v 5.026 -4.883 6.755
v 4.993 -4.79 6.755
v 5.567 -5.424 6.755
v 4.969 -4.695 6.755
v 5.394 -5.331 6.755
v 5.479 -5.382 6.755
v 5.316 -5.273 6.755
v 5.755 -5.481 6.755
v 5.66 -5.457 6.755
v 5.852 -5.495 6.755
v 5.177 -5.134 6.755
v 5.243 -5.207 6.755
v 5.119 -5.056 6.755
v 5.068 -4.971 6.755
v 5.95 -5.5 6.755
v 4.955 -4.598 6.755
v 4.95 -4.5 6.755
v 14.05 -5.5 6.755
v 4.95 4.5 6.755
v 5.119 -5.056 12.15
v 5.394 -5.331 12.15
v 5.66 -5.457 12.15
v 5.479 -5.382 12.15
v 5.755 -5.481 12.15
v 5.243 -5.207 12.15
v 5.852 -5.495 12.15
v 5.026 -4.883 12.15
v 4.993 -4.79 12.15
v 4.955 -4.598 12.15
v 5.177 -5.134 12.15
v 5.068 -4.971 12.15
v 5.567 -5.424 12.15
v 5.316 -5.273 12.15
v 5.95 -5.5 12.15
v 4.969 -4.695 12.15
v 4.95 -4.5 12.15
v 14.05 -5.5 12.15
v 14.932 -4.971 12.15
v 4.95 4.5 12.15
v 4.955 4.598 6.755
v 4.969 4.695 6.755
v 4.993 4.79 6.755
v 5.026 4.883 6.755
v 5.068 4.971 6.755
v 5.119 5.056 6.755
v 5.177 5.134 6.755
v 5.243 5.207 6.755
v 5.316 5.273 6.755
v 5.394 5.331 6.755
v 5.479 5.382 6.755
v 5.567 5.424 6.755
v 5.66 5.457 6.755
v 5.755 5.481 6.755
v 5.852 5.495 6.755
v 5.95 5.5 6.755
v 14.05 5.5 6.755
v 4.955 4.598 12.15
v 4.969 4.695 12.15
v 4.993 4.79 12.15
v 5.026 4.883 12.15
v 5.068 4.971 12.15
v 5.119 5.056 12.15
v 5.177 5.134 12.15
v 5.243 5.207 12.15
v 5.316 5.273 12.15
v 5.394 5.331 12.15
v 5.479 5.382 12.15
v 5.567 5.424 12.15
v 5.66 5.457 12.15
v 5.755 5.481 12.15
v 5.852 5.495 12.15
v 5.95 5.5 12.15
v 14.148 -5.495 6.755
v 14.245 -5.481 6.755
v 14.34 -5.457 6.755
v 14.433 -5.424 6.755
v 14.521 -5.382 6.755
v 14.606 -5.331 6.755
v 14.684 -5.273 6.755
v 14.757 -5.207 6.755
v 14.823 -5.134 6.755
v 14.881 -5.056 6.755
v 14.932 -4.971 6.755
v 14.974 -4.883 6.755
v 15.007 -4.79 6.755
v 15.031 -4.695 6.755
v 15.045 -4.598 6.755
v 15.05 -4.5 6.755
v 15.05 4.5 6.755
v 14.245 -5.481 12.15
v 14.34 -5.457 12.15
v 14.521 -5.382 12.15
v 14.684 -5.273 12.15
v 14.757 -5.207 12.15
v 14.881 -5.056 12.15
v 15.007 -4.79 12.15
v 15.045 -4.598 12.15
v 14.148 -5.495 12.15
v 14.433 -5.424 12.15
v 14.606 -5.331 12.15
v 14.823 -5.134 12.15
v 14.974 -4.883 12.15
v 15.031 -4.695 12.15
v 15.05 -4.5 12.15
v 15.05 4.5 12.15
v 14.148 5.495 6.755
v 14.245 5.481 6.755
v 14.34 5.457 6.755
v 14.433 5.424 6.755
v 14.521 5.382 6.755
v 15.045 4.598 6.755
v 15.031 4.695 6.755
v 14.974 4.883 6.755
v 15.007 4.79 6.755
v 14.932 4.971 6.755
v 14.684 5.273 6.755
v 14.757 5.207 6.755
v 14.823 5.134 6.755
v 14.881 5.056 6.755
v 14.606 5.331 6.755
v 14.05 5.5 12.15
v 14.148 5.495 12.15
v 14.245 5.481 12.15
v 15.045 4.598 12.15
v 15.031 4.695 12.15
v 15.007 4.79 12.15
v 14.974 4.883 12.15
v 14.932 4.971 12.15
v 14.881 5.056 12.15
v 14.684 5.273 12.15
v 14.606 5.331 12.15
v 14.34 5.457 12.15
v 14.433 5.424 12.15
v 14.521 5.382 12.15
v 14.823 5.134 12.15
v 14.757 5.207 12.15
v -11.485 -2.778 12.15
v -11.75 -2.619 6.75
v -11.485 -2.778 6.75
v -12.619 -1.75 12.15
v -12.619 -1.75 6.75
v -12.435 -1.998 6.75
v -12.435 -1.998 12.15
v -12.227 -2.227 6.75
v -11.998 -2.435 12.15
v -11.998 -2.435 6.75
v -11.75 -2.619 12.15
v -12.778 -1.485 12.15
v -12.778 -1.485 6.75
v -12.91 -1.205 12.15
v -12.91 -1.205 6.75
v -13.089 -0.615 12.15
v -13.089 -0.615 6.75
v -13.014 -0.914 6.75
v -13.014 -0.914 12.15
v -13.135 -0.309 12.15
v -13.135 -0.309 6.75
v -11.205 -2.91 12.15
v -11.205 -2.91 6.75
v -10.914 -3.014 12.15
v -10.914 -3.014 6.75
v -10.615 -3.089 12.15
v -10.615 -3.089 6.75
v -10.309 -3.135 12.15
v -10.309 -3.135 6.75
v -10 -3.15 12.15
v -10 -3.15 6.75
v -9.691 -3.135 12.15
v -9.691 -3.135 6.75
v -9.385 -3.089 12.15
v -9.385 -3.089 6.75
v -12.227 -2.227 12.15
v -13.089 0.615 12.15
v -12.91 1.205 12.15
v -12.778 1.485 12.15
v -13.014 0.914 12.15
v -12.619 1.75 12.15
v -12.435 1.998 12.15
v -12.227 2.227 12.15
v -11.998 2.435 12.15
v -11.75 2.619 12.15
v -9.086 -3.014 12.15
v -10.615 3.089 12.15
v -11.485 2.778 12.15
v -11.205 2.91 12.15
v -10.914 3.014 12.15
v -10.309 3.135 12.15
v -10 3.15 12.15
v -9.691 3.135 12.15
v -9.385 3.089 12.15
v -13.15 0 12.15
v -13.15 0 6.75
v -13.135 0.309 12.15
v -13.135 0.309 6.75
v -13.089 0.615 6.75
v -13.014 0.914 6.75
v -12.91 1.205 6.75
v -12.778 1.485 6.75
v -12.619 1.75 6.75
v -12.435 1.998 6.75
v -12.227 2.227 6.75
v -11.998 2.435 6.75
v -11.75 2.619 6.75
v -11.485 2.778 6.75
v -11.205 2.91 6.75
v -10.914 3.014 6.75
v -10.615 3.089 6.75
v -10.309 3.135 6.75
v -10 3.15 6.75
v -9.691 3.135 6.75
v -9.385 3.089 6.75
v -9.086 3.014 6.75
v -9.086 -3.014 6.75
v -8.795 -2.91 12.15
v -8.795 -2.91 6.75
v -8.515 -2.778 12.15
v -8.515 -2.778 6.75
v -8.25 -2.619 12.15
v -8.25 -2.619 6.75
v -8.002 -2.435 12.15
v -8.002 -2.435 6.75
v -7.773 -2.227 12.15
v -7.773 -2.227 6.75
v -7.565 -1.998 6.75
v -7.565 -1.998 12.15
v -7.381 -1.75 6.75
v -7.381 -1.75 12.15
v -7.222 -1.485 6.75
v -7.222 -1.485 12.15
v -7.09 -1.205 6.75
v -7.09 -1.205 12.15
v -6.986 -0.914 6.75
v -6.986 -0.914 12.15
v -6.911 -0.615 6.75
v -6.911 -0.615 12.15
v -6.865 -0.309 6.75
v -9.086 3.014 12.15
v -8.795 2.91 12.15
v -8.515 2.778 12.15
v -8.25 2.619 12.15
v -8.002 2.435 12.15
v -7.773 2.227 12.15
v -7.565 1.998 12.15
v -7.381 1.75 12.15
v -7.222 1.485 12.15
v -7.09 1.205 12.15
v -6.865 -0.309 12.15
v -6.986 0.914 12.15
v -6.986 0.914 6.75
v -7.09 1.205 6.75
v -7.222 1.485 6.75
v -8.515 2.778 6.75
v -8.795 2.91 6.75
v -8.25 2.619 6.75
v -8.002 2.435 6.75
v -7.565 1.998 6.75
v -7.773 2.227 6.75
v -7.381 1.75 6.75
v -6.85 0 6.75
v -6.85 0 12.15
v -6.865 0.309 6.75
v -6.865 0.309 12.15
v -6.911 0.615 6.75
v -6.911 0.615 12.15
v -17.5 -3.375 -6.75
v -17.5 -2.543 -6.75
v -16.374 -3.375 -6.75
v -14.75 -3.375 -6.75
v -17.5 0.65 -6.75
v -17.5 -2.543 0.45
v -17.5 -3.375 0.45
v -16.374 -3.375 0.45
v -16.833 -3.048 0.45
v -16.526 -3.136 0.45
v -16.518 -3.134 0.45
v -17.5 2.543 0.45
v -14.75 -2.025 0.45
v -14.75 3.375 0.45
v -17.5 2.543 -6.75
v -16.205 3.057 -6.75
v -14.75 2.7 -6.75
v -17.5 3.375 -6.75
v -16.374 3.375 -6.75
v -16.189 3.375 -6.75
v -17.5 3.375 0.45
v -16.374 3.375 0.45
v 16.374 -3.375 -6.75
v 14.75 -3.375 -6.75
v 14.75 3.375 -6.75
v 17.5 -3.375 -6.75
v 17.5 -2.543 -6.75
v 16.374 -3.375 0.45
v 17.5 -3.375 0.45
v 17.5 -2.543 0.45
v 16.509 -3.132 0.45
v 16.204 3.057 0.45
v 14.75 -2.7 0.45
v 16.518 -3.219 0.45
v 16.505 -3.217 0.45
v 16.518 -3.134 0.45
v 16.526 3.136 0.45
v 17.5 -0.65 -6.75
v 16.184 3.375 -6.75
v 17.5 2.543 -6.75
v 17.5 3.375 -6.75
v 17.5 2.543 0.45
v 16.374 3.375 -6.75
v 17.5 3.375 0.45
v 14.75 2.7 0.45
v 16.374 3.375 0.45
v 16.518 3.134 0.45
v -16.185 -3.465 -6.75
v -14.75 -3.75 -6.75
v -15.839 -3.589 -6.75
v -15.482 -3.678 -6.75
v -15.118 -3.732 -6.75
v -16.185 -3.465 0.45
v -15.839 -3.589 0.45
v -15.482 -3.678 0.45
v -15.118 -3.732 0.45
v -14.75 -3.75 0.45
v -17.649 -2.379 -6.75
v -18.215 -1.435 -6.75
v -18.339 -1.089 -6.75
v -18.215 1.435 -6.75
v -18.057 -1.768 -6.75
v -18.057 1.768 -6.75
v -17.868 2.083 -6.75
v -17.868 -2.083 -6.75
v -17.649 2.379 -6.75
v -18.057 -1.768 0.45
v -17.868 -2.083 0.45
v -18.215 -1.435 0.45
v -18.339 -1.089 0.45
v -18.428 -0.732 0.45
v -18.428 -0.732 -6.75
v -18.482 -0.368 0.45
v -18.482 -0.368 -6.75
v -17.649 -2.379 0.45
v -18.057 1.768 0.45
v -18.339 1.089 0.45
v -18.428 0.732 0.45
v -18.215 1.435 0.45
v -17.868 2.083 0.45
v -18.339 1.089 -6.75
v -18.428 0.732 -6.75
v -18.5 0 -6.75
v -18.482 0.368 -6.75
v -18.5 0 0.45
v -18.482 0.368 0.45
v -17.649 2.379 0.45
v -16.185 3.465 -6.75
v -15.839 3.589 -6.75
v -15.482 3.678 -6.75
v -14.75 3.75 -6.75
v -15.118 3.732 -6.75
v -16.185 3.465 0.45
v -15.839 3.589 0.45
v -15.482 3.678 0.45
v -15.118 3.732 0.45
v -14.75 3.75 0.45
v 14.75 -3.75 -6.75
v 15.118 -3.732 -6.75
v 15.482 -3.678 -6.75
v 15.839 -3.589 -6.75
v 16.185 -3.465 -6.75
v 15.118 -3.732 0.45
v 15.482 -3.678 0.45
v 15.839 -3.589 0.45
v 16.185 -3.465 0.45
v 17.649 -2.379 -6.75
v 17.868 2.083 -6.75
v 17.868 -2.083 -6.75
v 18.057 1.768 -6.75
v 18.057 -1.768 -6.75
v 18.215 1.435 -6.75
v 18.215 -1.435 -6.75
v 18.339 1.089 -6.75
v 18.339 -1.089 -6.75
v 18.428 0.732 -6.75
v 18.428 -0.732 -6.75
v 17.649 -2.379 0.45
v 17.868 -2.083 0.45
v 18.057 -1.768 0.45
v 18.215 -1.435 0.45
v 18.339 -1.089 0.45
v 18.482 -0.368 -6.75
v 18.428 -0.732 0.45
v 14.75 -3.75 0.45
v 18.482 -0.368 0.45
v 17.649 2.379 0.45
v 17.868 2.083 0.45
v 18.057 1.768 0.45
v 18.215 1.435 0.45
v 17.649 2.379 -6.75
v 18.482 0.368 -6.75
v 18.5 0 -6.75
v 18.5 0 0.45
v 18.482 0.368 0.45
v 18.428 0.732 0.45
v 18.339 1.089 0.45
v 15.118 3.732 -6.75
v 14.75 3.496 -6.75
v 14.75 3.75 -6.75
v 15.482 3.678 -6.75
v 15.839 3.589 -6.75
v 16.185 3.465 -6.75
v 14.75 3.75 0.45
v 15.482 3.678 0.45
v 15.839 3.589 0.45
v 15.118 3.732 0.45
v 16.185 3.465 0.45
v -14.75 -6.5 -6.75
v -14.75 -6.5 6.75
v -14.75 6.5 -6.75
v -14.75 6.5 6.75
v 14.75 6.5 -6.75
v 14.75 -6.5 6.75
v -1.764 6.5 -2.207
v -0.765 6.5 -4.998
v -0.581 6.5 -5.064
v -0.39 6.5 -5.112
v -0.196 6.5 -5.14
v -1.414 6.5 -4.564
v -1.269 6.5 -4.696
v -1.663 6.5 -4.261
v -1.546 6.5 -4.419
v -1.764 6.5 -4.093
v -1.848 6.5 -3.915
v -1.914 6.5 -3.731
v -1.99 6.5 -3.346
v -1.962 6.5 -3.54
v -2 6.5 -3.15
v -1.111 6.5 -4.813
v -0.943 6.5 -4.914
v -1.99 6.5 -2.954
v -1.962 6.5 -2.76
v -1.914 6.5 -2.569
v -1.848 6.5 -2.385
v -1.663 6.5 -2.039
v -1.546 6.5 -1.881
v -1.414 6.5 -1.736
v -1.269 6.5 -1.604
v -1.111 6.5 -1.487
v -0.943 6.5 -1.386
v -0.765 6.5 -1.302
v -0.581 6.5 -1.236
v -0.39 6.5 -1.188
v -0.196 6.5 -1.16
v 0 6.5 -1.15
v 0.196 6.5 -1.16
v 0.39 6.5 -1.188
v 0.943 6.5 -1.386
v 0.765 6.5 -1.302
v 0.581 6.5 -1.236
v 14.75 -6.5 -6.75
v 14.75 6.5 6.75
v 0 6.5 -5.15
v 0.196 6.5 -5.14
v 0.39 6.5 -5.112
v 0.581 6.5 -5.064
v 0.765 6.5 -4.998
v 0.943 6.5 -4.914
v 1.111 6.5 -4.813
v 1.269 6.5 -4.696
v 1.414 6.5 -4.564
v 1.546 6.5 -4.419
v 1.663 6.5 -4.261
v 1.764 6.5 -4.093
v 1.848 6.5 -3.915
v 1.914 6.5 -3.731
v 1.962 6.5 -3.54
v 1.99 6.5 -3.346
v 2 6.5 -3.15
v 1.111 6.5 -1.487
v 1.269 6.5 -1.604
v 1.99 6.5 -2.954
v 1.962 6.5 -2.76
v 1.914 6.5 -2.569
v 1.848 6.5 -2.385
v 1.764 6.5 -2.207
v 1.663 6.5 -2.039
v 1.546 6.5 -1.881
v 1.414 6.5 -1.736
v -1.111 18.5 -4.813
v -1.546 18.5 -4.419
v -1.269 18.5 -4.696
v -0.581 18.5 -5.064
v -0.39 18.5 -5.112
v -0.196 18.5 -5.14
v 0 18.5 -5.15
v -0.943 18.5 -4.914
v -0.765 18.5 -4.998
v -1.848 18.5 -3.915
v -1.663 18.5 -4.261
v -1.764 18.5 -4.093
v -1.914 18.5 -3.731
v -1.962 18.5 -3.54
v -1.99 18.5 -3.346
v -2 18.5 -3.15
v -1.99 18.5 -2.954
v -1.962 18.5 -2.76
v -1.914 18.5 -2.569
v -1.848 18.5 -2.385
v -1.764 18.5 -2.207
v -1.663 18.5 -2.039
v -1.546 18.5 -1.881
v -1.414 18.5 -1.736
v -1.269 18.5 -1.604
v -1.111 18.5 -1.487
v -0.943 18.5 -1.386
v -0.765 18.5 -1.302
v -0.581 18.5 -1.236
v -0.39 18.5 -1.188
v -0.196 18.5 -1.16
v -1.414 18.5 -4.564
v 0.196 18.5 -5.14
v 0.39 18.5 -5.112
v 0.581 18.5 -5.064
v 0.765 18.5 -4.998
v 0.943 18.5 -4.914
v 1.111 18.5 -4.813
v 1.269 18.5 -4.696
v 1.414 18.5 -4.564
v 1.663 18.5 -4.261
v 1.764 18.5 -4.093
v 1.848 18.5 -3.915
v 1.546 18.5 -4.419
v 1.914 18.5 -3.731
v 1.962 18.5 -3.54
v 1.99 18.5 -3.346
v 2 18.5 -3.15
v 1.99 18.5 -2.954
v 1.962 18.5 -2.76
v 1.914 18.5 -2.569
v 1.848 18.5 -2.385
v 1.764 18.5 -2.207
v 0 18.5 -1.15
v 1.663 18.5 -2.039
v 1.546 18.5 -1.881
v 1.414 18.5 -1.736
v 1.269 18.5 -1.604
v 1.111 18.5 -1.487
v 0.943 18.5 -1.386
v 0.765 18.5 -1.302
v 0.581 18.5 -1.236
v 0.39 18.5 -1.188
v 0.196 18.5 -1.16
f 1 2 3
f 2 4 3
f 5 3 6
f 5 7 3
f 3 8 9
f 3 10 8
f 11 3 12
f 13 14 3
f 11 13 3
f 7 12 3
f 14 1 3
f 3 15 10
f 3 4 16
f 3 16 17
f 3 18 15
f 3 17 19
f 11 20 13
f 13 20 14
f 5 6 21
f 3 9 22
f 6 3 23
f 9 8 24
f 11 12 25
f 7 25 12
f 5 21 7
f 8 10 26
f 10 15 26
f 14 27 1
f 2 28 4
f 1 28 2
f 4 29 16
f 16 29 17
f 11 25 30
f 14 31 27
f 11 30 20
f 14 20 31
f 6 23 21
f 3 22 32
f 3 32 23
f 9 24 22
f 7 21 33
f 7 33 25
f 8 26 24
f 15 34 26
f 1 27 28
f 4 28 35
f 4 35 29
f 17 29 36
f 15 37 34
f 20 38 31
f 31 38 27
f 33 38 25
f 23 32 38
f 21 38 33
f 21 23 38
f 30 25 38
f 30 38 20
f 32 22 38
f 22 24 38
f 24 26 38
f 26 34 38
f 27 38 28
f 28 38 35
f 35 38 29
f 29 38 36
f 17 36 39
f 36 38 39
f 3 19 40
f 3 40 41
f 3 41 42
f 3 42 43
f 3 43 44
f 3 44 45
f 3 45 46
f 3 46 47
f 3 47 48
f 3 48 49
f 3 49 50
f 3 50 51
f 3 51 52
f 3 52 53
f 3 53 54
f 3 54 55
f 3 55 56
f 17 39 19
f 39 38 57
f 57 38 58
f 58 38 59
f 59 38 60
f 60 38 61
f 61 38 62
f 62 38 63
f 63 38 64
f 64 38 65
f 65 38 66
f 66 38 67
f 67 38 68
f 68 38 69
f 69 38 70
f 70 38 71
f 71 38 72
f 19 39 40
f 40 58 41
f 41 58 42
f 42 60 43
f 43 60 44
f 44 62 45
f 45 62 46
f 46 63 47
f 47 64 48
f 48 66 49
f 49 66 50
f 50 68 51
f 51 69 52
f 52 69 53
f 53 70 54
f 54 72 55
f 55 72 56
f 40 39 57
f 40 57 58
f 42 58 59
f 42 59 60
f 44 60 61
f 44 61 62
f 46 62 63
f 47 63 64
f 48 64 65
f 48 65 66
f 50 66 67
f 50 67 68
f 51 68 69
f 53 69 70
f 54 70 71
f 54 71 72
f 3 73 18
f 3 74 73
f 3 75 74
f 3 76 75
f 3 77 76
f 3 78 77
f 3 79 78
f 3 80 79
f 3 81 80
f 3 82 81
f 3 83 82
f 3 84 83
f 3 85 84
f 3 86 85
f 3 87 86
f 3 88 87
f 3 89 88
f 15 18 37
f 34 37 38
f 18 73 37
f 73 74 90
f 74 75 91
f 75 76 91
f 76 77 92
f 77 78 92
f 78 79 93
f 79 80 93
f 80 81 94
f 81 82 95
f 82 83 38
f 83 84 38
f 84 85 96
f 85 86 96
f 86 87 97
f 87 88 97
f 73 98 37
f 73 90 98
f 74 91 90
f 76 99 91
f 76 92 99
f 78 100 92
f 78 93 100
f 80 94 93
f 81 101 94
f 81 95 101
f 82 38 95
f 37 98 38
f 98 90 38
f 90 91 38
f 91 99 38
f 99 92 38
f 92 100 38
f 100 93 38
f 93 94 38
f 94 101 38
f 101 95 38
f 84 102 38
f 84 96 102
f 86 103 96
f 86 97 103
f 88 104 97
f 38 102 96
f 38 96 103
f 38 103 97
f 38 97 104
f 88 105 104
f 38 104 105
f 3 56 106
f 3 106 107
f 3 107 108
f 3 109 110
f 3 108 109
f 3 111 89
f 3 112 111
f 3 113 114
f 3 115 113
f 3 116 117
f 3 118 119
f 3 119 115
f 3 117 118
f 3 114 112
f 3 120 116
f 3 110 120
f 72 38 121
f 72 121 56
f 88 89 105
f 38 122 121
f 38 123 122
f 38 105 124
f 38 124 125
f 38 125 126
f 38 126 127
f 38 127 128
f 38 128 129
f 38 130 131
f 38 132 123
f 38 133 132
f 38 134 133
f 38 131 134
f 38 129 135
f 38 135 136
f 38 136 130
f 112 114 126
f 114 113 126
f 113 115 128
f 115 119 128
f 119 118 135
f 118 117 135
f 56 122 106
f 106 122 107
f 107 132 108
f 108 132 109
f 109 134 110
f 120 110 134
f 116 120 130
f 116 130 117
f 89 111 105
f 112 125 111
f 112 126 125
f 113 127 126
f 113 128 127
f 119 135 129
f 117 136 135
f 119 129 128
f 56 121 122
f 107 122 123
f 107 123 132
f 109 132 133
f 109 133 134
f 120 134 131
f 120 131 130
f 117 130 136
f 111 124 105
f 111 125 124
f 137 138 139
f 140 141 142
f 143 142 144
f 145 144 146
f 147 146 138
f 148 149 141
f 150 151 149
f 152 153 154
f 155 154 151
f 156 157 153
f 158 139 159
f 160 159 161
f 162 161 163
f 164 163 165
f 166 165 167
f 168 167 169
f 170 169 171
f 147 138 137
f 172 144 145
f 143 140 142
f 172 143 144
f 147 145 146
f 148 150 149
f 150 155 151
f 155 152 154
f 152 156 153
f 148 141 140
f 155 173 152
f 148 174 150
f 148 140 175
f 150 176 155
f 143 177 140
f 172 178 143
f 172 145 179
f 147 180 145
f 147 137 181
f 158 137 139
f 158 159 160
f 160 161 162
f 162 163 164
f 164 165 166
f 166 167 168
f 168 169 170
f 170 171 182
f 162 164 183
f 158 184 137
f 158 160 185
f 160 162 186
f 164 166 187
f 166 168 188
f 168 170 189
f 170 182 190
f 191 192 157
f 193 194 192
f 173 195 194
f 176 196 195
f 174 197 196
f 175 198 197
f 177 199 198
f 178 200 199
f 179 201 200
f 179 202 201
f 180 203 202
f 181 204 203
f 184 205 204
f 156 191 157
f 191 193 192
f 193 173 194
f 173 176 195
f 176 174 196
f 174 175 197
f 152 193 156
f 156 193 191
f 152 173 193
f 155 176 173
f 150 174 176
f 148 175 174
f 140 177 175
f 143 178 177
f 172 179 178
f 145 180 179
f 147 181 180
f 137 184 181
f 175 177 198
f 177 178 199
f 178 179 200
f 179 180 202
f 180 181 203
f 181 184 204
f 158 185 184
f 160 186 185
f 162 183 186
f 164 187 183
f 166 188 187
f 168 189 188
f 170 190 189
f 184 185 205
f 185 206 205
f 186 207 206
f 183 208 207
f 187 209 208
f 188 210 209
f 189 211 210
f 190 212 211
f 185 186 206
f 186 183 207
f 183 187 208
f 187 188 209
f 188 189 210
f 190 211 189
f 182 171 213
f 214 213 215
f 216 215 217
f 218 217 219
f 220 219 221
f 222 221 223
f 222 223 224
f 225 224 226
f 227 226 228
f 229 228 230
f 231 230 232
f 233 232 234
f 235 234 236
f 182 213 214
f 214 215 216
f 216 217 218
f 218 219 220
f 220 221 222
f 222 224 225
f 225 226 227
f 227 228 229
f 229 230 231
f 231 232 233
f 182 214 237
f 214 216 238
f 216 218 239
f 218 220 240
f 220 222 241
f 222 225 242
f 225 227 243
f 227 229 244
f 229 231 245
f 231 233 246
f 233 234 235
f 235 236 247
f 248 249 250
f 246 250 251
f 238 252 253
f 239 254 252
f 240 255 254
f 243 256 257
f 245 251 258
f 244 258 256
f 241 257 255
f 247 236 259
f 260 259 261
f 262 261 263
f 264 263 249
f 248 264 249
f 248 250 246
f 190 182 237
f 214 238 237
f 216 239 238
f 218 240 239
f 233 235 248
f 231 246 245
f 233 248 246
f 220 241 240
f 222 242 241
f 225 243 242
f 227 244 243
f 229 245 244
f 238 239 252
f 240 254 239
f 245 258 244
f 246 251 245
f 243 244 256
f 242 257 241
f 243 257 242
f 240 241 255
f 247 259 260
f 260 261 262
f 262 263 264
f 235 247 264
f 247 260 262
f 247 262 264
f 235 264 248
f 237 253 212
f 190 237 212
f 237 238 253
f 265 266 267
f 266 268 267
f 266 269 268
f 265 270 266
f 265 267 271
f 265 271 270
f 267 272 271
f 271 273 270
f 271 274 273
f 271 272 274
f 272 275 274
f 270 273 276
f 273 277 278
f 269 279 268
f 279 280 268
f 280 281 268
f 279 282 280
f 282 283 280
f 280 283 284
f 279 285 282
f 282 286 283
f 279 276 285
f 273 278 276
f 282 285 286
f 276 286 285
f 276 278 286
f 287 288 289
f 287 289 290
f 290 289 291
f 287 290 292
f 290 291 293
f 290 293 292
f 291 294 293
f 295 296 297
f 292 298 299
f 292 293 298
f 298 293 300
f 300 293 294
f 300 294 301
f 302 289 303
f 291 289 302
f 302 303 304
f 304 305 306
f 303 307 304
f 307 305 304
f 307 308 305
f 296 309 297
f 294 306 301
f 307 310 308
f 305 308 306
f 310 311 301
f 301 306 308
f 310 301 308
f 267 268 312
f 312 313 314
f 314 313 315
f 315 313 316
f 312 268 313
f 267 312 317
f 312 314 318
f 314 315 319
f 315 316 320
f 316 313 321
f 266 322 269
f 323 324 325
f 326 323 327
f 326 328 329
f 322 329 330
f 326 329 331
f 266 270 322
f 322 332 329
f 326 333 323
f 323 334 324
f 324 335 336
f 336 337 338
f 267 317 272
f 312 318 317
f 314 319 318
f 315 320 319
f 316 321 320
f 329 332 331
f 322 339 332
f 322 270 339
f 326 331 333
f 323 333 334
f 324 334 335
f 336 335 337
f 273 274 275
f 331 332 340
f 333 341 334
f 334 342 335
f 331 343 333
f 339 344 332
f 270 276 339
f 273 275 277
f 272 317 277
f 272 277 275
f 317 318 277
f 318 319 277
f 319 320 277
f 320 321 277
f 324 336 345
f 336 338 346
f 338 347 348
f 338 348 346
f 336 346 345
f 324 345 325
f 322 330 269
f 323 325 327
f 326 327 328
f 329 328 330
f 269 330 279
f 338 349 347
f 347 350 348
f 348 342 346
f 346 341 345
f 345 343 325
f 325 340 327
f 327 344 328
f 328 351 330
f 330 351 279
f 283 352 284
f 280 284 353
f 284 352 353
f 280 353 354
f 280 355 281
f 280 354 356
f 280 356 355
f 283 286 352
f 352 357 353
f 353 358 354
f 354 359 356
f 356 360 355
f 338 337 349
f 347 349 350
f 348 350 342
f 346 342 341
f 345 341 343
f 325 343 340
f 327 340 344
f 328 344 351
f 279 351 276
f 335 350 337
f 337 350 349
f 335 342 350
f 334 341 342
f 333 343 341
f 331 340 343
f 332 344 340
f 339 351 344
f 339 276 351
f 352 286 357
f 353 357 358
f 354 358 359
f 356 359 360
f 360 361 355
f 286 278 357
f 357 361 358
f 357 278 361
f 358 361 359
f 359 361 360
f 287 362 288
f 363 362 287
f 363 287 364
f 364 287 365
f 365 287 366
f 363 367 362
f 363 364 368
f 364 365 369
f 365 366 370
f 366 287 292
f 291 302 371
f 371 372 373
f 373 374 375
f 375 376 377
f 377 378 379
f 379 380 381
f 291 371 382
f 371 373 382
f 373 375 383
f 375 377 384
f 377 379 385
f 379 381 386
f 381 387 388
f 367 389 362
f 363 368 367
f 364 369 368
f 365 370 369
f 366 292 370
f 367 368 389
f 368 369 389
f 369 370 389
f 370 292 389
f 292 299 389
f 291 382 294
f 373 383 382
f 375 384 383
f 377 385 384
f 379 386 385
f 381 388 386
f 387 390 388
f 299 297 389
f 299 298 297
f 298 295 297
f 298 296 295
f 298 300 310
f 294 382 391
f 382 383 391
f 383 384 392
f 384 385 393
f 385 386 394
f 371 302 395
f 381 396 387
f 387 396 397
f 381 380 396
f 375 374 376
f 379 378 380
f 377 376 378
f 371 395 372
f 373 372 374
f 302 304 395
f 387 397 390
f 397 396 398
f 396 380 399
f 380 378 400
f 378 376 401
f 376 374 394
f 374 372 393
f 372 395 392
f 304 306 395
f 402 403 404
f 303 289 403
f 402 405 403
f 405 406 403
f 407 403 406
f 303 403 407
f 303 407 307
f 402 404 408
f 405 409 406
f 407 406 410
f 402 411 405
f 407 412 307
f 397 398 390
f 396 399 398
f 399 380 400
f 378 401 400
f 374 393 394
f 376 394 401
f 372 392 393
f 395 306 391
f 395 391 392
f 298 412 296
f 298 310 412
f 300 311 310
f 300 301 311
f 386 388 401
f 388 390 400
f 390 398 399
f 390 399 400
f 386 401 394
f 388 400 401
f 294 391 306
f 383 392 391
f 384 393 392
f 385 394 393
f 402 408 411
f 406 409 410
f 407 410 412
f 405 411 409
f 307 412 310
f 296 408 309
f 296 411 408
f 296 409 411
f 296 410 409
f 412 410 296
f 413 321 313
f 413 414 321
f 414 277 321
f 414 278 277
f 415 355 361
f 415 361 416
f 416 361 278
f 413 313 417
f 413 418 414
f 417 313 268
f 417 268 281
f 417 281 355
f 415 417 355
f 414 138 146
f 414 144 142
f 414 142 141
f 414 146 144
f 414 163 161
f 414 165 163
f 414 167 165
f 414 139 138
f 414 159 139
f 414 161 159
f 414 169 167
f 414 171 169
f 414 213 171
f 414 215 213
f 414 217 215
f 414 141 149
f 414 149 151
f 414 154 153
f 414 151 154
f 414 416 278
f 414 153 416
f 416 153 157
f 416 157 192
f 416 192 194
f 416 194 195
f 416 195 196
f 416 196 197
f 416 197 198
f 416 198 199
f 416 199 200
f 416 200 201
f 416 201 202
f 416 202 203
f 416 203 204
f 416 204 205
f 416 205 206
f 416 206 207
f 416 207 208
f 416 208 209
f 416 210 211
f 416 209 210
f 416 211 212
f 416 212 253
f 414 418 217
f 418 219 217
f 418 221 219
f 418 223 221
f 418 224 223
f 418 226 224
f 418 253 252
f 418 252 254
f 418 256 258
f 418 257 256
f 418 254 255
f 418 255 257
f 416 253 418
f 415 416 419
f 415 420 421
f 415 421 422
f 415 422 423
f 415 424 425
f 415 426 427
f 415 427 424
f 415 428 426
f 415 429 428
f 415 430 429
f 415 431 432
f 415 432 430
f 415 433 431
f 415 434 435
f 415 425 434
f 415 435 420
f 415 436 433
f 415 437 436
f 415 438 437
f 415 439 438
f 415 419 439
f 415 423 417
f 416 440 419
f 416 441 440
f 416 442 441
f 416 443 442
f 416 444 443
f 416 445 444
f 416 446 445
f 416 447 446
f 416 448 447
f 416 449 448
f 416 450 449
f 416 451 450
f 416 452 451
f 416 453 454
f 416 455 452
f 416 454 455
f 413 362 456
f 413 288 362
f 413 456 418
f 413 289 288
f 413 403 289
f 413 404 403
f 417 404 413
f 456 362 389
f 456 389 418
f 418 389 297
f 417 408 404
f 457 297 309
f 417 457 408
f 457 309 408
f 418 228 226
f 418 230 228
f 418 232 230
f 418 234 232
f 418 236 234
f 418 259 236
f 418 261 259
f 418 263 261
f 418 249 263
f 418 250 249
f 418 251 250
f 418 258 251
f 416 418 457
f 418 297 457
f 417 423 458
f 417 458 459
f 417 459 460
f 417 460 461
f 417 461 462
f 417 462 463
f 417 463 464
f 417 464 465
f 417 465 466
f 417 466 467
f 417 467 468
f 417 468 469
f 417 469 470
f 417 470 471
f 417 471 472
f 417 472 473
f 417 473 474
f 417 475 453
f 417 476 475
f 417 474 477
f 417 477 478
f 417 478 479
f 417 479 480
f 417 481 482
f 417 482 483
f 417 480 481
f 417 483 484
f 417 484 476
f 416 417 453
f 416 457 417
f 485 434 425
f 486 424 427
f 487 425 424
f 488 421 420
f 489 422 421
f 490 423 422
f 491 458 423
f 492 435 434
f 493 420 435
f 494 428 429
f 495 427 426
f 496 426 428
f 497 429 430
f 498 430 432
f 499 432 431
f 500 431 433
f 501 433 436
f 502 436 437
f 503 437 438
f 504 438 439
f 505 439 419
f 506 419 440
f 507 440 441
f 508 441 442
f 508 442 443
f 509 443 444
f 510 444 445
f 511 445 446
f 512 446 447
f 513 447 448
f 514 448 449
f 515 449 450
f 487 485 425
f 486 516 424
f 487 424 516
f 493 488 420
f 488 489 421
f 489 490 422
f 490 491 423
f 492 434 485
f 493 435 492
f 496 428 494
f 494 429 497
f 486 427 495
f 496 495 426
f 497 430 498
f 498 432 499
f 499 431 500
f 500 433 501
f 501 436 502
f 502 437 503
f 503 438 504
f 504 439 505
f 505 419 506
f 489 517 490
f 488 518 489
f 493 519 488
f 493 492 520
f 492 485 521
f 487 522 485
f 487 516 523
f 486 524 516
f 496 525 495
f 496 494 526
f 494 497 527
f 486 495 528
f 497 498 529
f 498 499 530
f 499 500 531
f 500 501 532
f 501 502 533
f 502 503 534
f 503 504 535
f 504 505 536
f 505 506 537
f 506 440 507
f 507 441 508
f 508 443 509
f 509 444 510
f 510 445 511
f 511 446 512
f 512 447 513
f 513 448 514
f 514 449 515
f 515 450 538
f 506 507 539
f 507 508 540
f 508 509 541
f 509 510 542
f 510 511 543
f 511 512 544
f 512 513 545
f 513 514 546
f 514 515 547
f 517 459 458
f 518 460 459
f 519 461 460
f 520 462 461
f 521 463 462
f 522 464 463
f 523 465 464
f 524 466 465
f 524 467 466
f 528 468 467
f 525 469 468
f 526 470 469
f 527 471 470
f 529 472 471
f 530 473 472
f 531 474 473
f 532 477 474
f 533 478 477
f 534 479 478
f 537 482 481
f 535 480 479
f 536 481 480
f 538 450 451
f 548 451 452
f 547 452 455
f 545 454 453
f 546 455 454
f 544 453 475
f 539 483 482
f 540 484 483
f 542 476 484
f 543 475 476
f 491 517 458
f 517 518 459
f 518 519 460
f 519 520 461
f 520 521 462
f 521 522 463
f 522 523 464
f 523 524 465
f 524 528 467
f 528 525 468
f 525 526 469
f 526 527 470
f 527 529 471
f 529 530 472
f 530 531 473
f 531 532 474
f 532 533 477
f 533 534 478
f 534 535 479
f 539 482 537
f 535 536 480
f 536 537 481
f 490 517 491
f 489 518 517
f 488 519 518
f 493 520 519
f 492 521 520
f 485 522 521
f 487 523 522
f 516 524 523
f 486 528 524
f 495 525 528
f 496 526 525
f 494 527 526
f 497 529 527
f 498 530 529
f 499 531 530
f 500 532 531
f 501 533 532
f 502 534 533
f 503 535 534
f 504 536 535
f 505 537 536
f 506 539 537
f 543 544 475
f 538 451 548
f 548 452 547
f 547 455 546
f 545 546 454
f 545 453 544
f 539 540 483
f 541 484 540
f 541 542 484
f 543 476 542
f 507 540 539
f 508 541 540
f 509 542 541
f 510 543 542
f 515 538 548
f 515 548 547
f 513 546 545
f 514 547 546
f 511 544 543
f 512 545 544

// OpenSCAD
// Sharp GP2Y0A21YK0F distance sensor outline model
// Datasheet sheet 2 "Outline Dimensions" (Unit: mm)
//
// Coordinate system:
//   - Origin at body center
//   - +Z up (lenses on top face)
//   - +Y forward
//
// Notes:
//   - Dimensions marked * in datasheet are lens-center reference dims
//   - ( ) values are reference
//   - Unspecified tolerance +/-0.3 mm

$fn = 64;

// ---- Key dimensions from datasheet ----
body_w        = 29.5;   // main lens-case body width (X)
body_d        = 13.0;   // body depth (Y) (lens case)
body_h        = 13.5;   // overall case height
lens_top_h    = 18.9;   // total height incl. lens protrusion (reference)

bar_total_w   = 37.0;   // overall width across mounting tabs
bar_h         = 7.2;    // connecting-bar thickness / height region
bar_d         = 2.0;    // thin plate-like bar thickness (front extension ~)

mount_pitch   = 37.0 - 2*3.75; // center-to-center mounting hole span approx
mount_hole_d  = 3.2;    // mounting holes diameter
mount_tab_r   = 3.75;   // R3.75 rounded tab radius

lens_spacing  = 20.0;   // * lens center to lens center
lens_off      = 4.5;    // * first lens center from left edge ref

emitter_d     = 6.3;    // emitter lens window related dim
detector_w    = 10.1;   // detector window region width
detector_open = 14.75;  // detector opening reference

cable_notch_w = 7.5;    // cable take-out region
cable_d       = 4.0;    // simplified cable diameter

// ===========================================================
// Main lens-case body
// ===========================================================
module lens_case() {
    color([0.25, 0.25, 0.25])
    translate([0, 0, 0])
        cube([body_w, body_d, body_h], center = true);
}

// ===========================================================
// Lens protrusion on top: emitter + detector windows
// ===========================================================
module lenses() {
    lens_protrude = lens_top_h - body_h; // ~5.4
    z_base = body_h/2;

    // emitter lens (circular window), left side
    color([0.15, 0.15, 0.2])
    translate([-lens_spacing/2, 0, z_base])
        cylinder(d = emitter_d, h = lens_protrude);

    // detector lens (rounded rectangular window), right side
    color([0.15, 0.15, 0.2])
    translate([ lens_spacing/2, 0, z_base + lens_protrude/2])
        minkowski() {
            cube([detector_w - 2, body_d - 4, lens_protrude - 0.01],
                 center = true);
            cylinder(r = 1, h = 0.005);
        }
}

// ===========================================================
// Connecting bar with rounded mounting tabs
// ===========================================================
module mount_tab(x_sign) {
    color([0.25, 0.25, 0.25])
    difference() {
        // rounded tab body
        translate([x_sign * (bar_total_w/2 - mount_tab_r), 0, 0])
        union() {
            cylinder(r = mount_tab_r, h = bar_h, center = true);
            // join toward body
            translate([-x_sign * mount_tab_r/2, 0, 0])
                cube([mount_tab_r, mount_tab_r*2, bar_h], center = true);
        }
        // mounting hole
        translate([x_sign * (bar_total_w/2 - mount_tab_r), 0, 0])
            cylinder(d = mount_hole_d, h = bar_h + 1, center = true);
    }
}

module connecting_bar() {
    z_bar = -(body_h/2) + bar_h/2; // bar sits at lower region of case

    translate([0, 0, z_bar]) {
        // central connecting plate linking tabs to body
        color([0.25, 0.25, 0.25])
        difference() {
            cube([bar_total_w - 2, mount_tab_r*1.8, bar_h], center = true);
            // cable take-out notch at front-center
            translate([0, mount_tab_r, 0])
                cube([cable_notch_w, mount_tab_r*2, bar_h + 1], center = true);
        }
        // rounded mounting tabs left / right
        mount_tab(-1);
        mount_tab( 1);
    }
}

// ===========================================================
// Cable (simplified rod) exiting front-bottom (PHR-3 lead)
// ===========================================================
module cable() {
    z_cable = -(body_h/2) + bar_h/2;
    color([0.1, 0.1, 0.1])
    translate([0, body_d/2, z_cable])
        rotate([-90, 0, 0])
            cylinder(d = cable_d, h = 12);
}

// ===========================================================
// Assembly
// ===========================================================
module GP2Y0A21YK0F() {
    lens_case();
    lenses();
    connecting_bar();
    cable();
}

GP2Y0A21YK0F();
